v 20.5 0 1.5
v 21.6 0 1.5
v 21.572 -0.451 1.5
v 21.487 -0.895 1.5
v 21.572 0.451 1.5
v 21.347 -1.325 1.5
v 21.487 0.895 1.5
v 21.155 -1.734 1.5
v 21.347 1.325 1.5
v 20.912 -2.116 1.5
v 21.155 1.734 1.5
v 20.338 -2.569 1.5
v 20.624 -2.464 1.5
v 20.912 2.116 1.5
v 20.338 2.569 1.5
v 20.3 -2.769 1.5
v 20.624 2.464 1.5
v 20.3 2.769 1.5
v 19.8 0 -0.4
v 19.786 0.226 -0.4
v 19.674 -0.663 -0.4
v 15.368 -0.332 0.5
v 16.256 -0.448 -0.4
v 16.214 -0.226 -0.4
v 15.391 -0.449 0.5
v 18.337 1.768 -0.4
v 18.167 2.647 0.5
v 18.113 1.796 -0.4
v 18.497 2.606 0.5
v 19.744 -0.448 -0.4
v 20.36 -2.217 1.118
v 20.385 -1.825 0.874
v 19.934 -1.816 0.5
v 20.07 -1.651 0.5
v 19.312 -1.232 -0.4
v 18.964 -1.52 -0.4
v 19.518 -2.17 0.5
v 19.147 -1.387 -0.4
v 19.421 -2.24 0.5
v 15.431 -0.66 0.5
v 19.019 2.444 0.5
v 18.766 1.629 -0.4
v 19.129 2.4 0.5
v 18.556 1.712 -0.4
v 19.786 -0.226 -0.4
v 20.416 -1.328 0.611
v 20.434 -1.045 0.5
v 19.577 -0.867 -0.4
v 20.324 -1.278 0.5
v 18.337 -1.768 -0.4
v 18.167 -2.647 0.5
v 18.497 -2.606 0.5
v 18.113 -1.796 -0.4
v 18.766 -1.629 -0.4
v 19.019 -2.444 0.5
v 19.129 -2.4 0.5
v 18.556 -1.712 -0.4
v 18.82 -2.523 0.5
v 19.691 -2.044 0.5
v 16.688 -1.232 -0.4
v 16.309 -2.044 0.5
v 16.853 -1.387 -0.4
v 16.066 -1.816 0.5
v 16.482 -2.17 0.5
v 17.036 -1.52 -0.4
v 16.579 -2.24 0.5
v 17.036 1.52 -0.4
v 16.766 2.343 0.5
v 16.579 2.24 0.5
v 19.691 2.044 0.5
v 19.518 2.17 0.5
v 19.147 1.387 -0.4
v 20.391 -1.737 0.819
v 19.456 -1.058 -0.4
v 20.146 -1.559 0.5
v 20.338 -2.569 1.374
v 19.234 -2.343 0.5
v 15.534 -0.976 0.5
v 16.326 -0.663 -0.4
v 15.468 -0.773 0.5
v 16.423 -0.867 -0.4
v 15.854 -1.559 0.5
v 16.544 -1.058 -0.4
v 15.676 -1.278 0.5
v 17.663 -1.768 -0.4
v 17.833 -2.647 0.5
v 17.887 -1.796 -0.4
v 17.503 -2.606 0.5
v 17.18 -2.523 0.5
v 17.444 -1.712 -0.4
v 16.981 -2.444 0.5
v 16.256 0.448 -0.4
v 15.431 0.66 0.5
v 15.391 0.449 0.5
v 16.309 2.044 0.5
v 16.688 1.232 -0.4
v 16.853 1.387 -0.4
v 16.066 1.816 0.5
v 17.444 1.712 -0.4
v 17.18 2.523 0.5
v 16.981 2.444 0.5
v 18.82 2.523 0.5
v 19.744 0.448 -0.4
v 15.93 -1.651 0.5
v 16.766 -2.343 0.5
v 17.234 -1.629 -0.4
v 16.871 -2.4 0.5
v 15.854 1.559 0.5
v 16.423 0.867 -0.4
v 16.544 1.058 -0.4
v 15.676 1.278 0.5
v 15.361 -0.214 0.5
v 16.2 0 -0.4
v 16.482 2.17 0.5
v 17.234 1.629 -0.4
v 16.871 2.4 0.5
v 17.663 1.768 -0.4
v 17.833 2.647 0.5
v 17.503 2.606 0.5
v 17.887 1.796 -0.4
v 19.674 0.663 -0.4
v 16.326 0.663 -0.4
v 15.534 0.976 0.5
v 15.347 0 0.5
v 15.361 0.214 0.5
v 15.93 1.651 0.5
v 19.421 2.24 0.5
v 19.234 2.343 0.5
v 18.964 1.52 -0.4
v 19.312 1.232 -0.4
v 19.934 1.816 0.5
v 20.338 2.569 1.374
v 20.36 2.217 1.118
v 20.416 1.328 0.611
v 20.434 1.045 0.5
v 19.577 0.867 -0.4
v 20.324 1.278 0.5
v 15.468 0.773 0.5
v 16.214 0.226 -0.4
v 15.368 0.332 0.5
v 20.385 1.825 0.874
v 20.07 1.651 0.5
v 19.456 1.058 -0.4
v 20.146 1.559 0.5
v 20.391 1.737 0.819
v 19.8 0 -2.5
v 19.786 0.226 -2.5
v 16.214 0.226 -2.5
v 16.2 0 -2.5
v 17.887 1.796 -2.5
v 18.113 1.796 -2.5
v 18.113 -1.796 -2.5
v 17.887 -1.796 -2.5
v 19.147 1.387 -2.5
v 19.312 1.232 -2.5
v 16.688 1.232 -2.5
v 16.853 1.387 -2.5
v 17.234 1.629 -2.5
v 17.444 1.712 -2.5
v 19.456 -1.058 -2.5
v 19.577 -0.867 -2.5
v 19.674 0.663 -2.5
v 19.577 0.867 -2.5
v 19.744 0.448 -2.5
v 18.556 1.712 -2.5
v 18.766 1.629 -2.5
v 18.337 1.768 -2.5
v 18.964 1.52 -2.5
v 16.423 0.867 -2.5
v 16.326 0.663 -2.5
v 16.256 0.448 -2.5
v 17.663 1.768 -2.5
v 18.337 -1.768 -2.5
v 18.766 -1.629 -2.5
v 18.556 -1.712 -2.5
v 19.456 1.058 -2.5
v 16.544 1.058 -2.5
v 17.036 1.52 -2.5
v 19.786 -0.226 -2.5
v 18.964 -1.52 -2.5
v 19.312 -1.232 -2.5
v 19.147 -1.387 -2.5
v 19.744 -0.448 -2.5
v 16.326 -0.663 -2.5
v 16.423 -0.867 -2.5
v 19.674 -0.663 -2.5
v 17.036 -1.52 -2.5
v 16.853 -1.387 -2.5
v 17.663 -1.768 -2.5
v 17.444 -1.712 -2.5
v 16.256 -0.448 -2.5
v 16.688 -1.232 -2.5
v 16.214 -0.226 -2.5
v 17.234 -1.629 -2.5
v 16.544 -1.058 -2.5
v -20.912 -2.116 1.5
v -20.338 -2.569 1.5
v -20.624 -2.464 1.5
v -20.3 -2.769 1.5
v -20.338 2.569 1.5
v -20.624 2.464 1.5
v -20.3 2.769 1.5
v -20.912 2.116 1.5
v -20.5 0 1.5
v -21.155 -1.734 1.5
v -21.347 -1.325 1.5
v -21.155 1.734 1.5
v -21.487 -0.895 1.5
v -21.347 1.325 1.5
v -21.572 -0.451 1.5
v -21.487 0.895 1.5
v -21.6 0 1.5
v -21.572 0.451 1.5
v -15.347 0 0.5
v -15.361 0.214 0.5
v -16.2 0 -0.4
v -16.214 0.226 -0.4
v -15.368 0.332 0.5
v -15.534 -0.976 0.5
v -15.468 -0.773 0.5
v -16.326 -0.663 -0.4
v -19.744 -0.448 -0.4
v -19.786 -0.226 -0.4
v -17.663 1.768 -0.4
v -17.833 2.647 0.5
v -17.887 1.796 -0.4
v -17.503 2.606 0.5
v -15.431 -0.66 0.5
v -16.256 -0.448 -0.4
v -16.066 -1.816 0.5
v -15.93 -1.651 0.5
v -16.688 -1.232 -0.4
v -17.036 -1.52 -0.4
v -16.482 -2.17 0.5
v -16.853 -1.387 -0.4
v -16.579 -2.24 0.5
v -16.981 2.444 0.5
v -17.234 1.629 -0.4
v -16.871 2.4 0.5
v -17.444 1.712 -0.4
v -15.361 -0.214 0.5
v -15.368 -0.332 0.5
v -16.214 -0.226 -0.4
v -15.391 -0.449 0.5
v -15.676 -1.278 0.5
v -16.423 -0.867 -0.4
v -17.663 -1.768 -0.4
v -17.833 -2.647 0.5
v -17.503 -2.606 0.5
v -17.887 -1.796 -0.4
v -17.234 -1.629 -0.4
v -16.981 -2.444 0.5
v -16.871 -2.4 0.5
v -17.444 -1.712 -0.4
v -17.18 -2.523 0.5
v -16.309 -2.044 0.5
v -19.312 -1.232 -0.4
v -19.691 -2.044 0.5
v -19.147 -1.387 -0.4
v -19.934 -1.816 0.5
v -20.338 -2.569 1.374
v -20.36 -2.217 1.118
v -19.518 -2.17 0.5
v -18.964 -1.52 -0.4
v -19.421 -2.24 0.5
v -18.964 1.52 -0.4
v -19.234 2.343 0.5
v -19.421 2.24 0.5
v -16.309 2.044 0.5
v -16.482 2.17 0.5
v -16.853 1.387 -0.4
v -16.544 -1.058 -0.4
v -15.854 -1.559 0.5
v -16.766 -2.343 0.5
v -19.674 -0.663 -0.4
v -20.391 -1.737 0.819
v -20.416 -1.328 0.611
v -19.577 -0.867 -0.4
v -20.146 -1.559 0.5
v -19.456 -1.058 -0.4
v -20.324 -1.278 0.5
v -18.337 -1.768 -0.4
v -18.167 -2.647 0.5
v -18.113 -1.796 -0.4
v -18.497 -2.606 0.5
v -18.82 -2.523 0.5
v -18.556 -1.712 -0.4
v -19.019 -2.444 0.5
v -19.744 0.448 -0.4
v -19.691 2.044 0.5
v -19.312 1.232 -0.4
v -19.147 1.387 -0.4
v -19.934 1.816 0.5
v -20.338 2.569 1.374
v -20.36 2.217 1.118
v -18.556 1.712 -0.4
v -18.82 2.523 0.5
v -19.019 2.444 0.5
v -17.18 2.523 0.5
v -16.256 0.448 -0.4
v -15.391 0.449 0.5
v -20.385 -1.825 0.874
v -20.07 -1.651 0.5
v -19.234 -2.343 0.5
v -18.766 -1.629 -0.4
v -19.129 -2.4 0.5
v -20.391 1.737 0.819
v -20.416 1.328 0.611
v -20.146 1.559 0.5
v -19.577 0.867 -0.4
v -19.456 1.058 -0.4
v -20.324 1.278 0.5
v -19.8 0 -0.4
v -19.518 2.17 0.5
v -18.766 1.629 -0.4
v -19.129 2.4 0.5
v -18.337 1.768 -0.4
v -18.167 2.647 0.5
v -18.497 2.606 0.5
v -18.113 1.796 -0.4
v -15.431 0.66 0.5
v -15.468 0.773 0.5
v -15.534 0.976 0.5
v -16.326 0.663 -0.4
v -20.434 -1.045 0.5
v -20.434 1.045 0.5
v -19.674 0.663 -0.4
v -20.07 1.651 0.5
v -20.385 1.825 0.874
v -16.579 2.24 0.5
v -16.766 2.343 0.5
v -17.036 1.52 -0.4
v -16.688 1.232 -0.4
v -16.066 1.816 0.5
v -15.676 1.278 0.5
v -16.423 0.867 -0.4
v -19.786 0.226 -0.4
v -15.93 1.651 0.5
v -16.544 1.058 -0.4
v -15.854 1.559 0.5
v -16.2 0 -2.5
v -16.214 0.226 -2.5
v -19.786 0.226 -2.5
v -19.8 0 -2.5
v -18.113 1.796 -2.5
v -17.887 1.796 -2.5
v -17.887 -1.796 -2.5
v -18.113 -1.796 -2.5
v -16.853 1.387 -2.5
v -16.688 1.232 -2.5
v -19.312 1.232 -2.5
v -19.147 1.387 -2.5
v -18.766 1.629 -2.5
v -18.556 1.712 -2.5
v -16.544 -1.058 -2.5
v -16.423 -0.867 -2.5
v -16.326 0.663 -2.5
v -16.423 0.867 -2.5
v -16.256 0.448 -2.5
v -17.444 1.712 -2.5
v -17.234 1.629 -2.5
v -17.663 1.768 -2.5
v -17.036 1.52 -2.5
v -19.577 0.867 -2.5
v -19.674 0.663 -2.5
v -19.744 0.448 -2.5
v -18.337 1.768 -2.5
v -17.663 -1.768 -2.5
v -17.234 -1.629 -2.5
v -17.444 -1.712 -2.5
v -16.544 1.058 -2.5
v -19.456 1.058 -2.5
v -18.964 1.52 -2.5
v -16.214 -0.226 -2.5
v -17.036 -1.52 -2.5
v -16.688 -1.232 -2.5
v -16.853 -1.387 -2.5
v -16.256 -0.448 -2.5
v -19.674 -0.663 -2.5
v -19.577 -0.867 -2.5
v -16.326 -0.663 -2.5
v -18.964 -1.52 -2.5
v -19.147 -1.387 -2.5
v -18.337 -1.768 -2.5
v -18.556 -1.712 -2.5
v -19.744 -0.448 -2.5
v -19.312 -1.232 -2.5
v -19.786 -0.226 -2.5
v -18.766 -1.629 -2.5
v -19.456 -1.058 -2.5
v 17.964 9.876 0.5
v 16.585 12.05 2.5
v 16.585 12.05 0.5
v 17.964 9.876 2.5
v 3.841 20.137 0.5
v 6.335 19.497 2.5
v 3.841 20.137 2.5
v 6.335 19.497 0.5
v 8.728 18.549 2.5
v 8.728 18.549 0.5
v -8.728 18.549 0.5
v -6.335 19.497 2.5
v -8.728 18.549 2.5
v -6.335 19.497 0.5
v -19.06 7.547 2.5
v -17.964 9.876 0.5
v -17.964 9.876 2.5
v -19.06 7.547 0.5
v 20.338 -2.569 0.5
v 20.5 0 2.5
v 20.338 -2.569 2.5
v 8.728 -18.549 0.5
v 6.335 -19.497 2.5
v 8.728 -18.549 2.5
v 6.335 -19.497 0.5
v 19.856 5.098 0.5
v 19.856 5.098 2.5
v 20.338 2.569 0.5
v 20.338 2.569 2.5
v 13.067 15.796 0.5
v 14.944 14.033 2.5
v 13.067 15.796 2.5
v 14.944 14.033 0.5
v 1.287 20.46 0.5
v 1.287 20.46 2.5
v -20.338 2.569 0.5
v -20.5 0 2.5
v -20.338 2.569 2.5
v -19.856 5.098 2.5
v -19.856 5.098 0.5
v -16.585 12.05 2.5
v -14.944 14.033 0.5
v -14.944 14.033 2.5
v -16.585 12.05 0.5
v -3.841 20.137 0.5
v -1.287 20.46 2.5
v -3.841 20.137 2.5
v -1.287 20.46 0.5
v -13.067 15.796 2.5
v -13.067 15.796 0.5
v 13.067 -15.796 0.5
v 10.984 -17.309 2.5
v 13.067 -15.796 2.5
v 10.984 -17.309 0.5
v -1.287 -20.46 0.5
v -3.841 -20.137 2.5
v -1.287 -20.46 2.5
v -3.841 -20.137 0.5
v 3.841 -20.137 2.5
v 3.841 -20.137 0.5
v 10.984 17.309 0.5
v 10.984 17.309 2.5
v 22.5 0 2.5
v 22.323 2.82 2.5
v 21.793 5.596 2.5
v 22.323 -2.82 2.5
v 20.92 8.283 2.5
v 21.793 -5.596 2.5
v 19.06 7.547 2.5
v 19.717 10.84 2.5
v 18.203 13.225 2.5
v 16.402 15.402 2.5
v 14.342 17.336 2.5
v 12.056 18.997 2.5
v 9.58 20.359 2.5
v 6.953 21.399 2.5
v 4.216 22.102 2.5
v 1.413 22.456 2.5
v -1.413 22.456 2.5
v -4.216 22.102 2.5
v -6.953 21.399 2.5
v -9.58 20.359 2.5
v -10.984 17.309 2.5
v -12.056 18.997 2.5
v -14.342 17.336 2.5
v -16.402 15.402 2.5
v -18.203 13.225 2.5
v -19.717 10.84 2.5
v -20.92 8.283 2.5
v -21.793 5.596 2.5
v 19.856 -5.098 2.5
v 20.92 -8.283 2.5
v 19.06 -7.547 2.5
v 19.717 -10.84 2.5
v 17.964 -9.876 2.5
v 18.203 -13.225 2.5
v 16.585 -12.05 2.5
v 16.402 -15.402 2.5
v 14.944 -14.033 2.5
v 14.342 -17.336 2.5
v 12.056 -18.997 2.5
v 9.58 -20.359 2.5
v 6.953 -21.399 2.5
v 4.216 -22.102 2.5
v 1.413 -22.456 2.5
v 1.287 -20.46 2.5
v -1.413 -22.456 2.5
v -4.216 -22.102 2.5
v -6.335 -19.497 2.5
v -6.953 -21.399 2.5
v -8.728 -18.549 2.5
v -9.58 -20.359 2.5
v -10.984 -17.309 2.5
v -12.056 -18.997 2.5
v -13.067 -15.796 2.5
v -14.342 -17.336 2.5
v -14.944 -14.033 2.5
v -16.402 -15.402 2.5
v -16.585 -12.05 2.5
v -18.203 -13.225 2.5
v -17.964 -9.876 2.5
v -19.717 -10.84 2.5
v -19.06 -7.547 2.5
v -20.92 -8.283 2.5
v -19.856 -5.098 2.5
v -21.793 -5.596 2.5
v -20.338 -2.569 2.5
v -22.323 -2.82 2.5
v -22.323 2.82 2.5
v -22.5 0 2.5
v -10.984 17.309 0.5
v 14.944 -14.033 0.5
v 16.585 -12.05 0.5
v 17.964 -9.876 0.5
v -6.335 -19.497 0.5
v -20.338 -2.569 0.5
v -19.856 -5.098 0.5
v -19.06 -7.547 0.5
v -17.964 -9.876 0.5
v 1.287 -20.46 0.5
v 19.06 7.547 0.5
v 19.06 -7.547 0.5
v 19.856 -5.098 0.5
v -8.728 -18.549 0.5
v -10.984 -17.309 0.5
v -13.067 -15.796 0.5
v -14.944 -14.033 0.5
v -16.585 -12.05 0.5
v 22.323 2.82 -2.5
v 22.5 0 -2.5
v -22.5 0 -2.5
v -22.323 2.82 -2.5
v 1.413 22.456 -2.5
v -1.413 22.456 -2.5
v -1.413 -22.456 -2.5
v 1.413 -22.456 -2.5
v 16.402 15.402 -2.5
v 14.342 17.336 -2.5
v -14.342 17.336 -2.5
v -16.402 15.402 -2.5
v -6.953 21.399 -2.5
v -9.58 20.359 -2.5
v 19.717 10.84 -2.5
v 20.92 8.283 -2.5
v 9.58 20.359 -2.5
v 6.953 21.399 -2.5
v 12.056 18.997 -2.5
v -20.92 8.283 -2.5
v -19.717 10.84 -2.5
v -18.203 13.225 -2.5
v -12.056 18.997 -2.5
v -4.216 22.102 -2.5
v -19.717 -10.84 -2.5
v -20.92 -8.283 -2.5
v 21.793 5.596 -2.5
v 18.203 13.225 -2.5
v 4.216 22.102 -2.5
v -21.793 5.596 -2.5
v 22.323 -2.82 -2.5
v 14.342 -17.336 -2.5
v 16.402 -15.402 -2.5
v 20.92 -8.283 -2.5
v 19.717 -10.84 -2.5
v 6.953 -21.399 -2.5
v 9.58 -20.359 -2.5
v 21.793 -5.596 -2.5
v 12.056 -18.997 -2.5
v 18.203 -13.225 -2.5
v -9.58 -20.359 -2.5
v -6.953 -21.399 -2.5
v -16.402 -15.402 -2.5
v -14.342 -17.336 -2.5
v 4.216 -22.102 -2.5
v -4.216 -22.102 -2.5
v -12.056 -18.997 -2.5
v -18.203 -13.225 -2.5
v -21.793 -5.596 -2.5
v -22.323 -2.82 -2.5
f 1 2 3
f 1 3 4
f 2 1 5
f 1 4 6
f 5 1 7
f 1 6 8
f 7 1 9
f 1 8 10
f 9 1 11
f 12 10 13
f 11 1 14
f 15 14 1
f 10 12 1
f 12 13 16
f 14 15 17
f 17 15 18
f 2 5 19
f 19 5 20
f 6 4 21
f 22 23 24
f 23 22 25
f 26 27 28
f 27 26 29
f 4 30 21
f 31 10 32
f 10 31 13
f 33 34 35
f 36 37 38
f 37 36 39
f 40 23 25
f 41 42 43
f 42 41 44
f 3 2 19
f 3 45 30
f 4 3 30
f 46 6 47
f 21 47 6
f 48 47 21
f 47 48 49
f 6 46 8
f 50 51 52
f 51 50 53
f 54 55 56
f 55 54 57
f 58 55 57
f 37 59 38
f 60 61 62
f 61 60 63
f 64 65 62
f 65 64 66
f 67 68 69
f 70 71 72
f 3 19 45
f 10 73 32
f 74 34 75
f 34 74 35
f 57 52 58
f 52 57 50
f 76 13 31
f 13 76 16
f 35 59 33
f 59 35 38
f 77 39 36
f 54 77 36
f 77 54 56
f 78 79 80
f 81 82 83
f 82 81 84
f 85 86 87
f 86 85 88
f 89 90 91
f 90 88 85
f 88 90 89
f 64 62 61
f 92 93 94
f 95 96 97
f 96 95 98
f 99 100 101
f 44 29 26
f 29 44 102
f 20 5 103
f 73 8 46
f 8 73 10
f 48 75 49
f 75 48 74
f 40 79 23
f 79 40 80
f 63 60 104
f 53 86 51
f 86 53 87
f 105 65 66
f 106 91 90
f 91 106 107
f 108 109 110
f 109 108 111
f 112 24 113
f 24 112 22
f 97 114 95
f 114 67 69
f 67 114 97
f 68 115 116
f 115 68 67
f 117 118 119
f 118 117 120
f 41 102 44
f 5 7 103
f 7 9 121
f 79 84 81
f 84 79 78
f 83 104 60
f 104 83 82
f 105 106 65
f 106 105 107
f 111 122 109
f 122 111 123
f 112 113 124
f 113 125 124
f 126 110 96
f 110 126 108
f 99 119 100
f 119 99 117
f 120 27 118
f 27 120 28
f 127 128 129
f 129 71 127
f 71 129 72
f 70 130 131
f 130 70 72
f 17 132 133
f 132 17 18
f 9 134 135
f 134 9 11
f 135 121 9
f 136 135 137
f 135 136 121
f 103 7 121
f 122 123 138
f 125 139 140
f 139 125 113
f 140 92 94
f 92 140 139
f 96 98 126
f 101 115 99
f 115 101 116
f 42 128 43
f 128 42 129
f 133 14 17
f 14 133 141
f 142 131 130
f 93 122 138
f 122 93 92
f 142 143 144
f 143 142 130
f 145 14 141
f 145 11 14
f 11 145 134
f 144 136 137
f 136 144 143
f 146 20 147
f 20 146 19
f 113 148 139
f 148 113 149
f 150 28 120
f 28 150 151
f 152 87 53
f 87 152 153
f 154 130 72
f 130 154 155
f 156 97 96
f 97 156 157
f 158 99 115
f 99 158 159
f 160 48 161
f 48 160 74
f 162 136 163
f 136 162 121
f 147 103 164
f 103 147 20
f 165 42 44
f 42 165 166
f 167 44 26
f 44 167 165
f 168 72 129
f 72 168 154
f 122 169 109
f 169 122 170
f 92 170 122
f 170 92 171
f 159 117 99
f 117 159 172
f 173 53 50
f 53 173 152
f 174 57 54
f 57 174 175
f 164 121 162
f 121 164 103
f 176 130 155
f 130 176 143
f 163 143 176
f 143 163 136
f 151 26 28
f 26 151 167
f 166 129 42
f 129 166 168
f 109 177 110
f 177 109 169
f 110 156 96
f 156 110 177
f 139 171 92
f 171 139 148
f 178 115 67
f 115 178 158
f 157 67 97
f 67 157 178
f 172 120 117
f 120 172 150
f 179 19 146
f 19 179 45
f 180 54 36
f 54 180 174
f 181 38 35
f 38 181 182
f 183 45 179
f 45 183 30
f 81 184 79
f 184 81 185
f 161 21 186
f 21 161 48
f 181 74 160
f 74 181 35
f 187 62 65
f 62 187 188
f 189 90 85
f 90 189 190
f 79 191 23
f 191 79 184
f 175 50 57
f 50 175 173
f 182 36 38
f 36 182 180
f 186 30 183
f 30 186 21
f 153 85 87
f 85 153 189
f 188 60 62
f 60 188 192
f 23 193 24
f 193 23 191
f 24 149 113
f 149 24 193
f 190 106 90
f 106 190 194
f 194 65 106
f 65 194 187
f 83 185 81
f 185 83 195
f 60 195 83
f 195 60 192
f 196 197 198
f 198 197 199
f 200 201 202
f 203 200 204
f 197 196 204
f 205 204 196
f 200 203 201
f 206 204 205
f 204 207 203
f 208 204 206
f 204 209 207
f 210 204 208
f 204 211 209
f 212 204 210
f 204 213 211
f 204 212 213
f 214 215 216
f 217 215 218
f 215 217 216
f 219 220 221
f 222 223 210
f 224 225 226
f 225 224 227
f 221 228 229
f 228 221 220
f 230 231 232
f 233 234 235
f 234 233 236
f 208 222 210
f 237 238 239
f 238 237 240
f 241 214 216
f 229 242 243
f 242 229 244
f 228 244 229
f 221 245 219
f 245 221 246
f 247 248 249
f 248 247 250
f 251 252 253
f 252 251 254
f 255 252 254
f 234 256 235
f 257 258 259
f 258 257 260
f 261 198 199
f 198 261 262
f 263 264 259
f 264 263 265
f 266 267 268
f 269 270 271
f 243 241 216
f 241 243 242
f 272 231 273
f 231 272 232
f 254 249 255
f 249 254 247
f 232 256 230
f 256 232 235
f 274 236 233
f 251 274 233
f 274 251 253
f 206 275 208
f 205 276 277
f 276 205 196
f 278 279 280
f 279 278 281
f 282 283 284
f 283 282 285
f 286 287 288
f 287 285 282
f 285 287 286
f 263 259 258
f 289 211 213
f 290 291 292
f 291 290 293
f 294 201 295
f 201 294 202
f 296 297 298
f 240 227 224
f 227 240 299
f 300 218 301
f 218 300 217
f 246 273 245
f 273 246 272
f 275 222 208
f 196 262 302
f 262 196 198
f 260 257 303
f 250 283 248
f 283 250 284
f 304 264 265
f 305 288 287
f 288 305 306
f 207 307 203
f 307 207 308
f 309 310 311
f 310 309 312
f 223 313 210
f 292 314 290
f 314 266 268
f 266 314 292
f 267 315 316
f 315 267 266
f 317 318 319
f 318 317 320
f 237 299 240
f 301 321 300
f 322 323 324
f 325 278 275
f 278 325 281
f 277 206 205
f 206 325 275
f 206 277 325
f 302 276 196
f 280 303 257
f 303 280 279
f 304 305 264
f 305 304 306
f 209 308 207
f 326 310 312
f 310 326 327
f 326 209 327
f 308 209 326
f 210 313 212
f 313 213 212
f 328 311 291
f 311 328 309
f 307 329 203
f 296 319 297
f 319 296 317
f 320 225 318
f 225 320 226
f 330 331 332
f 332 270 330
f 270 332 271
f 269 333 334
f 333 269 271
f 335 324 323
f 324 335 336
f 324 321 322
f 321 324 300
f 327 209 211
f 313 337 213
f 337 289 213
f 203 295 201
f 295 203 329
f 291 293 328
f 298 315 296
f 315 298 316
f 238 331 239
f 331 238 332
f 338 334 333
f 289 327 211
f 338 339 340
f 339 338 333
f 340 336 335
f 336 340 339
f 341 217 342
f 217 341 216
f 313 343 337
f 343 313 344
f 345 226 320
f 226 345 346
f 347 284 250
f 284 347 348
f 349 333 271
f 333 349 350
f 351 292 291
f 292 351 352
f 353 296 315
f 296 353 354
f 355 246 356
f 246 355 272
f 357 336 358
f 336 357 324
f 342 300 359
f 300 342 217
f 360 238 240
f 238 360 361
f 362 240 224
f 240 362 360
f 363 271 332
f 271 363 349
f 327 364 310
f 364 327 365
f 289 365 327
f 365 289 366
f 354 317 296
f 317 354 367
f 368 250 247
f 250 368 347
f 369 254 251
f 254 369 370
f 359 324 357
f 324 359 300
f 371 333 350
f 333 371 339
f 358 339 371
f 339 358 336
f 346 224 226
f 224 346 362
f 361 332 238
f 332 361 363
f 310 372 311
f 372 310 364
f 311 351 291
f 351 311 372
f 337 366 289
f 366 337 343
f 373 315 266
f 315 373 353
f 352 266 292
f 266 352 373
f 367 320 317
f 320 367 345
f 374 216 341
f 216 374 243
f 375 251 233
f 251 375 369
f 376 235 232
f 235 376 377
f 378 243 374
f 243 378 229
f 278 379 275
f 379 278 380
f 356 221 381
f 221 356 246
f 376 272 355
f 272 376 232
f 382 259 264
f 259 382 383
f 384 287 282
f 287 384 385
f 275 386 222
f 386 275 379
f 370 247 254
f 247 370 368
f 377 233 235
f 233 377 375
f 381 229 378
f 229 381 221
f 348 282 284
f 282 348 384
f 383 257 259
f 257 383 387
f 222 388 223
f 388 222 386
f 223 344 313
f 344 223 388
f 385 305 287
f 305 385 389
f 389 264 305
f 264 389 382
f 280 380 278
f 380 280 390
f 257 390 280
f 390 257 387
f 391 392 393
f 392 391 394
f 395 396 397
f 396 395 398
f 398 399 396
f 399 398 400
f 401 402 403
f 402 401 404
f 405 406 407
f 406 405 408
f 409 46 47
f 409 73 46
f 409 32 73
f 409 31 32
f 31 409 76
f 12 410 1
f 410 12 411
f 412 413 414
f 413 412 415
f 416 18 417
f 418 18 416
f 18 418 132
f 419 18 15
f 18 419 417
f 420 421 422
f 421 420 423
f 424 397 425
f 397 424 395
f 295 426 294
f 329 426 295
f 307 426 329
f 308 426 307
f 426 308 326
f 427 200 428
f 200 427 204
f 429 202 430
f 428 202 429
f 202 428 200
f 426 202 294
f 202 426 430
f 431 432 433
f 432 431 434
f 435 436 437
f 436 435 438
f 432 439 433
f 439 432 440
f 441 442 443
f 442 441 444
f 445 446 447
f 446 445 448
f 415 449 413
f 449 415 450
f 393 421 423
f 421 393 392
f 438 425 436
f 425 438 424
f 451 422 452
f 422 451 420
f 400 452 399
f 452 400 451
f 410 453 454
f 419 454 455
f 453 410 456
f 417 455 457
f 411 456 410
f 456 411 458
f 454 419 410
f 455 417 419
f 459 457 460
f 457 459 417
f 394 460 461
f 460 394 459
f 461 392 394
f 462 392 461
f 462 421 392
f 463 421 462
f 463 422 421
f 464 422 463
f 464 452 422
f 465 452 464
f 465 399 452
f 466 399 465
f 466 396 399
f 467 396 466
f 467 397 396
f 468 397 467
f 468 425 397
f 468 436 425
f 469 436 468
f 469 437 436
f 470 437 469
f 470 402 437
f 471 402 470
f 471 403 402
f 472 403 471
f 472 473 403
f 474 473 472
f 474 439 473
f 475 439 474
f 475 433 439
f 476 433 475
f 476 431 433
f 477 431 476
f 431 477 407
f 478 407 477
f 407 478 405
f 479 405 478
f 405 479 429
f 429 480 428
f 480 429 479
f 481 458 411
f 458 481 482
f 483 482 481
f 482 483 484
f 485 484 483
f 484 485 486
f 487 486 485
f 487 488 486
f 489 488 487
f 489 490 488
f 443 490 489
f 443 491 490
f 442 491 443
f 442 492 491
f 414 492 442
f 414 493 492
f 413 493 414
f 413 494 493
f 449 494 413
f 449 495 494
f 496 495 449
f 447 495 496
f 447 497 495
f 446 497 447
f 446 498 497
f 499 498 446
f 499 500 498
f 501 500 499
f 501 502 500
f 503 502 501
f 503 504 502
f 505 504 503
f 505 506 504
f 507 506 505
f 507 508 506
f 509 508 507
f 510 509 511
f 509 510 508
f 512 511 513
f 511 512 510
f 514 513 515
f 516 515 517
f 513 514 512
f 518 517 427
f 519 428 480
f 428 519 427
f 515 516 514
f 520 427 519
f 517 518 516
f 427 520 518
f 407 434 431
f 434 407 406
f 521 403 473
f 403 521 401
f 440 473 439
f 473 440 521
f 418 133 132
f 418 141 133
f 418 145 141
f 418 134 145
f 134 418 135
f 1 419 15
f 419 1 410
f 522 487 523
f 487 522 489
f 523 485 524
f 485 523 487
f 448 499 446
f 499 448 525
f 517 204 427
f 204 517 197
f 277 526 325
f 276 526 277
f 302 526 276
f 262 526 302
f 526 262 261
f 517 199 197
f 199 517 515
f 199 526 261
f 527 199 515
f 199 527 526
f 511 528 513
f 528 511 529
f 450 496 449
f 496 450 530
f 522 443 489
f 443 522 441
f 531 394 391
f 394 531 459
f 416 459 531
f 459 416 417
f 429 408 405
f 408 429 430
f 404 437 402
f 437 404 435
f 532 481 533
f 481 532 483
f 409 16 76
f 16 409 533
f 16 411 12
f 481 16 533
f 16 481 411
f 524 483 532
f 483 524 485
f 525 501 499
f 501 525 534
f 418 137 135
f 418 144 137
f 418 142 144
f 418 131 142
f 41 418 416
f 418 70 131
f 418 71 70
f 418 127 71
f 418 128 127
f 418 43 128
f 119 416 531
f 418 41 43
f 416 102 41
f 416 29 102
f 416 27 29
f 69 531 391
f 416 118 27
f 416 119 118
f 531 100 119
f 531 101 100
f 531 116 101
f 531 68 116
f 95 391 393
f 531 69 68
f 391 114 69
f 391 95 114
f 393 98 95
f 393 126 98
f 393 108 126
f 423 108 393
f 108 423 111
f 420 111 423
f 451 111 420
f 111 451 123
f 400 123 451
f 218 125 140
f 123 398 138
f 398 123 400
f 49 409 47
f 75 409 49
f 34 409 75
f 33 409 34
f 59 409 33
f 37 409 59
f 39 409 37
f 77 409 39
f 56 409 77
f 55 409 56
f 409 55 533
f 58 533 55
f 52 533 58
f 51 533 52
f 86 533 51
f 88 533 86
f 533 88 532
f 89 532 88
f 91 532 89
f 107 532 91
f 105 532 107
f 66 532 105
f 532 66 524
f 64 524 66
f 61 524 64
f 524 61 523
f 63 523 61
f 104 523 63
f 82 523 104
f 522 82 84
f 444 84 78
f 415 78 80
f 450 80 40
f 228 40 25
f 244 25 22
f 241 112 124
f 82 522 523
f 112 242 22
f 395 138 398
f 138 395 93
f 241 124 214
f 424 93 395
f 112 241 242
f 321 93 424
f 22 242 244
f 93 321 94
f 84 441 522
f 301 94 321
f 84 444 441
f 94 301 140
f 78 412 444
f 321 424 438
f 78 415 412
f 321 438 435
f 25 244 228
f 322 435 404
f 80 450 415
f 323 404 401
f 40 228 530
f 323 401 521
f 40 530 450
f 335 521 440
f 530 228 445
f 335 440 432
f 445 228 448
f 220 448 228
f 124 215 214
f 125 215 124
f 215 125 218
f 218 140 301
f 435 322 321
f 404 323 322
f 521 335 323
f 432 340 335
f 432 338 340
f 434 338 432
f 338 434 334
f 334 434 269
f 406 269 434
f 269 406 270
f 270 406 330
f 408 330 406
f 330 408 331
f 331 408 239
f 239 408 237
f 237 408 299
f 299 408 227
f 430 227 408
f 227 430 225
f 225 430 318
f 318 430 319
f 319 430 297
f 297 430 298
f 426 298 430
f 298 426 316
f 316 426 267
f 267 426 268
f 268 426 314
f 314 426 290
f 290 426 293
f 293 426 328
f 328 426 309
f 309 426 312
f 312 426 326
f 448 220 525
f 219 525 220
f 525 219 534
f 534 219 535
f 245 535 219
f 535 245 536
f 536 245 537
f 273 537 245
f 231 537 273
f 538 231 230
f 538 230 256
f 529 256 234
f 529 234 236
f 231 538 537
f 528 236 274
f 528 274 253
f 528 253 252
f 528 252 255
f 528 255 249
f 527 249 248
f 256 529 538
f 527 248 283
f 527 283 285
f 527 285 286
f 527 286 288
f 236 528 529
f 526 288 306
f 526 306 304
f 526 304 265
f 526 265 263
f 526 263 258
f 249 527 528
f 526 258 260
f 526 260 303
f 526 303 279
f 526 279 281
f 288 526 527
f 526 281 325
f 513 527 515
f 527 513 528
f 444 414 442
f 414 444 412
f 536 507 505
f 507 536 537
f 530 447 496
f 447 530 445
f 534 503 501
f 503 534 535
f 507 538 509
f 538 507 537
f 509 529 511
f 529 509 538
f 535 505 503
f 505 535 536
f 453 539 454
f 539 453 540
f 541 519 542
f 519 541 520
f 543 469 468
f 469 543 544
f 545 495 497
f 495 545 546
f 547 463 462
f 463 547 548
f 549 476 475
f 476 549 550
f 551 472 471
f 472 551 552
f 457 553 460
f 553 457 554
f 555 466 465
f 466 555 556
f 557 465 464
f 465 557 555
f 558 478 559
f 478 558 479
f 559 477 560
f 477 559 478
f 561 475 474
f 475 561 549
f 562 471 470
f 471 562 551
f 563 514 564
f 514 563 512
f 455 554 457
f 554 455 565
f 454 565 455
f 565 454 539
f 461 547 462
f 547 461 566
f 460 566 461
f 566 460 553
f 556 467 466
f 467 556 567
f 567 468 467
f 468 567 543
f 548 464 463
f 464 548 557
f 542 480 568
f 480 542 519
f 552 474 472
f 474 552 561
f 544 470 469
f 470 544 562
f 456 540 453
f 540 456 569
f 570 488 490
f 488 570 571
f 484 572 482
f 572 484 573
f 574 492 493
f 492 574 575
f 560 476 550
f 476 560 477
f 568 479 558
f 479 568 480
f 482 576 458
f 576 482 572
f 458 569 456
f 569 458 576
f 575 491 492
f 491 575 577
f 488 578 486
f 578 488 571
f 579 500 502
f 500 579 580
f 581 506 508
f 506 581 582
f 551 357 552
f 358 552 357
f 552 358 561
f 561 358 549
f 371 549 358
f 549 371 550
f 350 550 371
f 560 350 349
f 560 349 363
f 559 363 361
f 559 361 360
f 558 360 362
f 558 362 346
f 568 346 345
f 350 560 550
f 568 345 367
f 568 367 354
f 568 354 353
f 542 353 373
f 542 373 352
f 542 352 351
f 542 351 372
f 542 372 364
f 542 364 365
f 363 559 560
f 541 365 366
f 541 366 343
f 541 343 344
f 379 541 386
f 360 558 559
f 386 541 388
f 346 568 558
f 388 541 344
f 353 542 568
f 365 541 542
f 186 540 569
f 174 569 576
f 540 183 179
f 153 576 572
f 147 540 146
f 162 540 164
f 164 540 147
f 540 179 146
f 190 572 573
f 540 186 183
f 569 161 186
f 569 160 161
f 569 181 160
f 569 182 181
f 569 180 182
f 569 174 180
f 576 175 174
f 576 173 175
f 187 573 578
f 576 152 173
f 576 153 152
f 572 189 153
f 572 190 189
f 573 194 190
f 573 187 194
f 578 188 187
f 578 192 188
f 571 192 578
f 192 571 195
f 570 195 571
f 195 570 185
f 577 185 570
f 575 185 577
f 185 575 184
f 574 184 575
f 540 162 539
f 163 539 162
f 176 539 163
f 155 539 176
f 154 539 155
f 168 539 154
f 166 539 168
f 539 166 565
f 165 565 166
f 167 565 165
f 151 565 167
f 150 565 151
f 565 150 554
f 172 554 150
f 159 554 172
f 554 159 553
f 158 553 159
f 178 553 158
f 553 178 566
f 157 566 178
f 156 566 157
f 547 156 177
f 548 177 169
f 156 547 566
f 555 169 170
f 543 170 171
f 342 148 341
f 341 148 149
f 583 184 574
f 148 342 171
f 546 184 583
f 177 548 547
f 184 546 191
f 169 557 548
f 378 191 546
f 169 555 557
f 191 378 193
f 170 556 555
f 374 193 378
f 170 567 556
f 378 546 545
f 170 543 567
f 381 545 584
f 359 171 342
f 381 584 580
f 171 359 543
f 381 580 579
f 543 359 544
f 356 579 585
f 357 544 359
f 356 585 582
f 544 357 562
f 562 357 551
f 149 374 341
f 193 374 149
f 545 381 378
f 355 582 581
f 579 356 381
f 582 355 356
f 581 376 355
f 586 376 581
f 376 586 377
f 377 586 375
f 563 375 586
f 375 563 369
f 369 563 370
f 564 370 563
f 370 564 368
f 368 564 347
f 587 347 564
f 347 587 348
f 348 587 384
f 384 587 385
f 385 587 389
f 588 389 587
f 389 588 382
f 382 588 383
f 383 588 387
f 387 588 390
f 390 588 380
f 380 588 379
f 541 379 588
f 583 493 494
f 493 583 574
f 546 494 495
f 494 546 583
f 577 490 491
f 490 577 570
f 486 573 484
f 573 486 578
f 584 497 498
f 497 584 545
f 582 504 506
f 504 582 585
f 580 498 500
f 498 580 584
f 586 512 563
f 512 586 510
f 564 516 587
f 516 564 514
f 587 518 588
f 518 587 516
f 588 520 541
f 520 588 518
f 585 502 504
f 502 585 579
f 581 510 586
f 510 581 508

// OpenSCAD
$fn = 50;


difference() {
	union() {
		translate(v = [0, 0, -2.5000000000]) {
			cylinder(h = 5, r = 22.5000000000);
		}
	}
	union() {
		translate(v = [18.0000000000, 0, 1.5000000000]) {
			rotate(a = [0, 0, 0]) {
				difference() {
					union() {
						translate(v = [0, 0, -10.0000000000]) {
							rotate(a = [0, 0, 0]) {
								difference() {
									union() {
										#translate(v = [-1.7500000000, -3.2500000000, -0.3000000000]) {
											cube(size = [3.5000000000, 6.5000000000, 0.3000000000]);
										}
										#translate(v = [-1.7500000000, -1.7500000000, -0.6000000000]) {
											cube(size = [3.5000000000, 3.5000000000, 0.3000000000]);
										}
										#translate(v = [-1.7500000000, -3.2500000000, 2.5000000000]) {
											cube(size = [3.5000000000, 6.5000000000, 0.3000000000]);
										}
										#translate(v = [-1.7500000000, -1.7500000000, 2.8000000000]) {
											cube(size = [3.5000000000, 3.5000000000, 0.3000000000]);
										}
										#linear_extrude(height = 2.5000000000) {
											polygon(points = [[3.4620000000, 0.0000000000], [1.7310000000, 2.9981799479], [-1.7310000000, 2.9981799479], [-3.4620000000, 0.0000000000], [-1.7310000000, -2.9981799479], [1.7310000000, -2.9981799479]]);
										}
										#translate(v = [-1.7500000000, -3.2500000000, -0.3000000000]) {
											cube(size = [3.5000000000, 6.5000000000, 0.3000000000]);
										}
										#translate(v = [-1.7500000000, -1.7500000000, -0.6000000000]) {
											cube(size = [3.5000000000, 3.5000000000, 0.3000000000]);
										}
										#translate(v = [-1.7500000000, -3.2500000000, 2.5000000000]) {
											cube(size = [3.5000000000, 6.5000000000, 0.3000000000]);
										}
										#translate(v = [-1.7500000000, -1.7500000000, 2.8000000000]) {
											cube(size = [3.5000000000, 3.5000000000, 0.3000000000]);
										}
										#translate(v = [-1.7500000000, -3.2500000000, -0.3000000000]) {
											cube(size = [3.5000000000, 6.5000000000, 0.3000000000]);
										}
										#translate(v = [-1.7500000000, -1.7500000000, -0.6000000000]) {
											cube(size = [3.5000000000, 3.5000000000, 0.3000000000]);
										}
										#translate(v = [-1.7500000000, -3.2500000000, 2.5000000000]) {
											cube(size = [3.5000000000, 6.5000000000, 0.3000000000]);
										}
										#translate(v = [-1.7500000000, -1.7500000000, 2.8000000000]) {
											cube(size = [3.5000000000, 3.5000000000, 0.3000000000]);
										}
									}
									union();
								}
							}
						}
						translate(v = [0, 0, -10.0000000000]) {
							rotate(a = [0, 0, 0]) {
								difference() {
									union() {
										#translate(v = [-1.7500000000, -3.2500000000, -0.3000000000]) {
											cube(size = [3.5000000000, 6.5000000000, 0.3000000000]);
										}
										#translate(v = [-1.7500000000, -1.7500000000, -0.6000000000]) {
											cube(size = [3.5000000000, 3.5000000000, 0.3000000000]);
										}
										#translate(v = [-1.7500000000, -3.2500000000, 2.5000000000]) {
											cube(size = [3.5000000000, 6.5000000000, 0.3000000000]);
										}
										#translate(v = [-1.7500000000, -1.7500000000, 2.8000000000]) {
											cube(size = [3.5000000000, 3.5000000000, 0.3000000000]);
										}
										#linear_extrude(height = 2.5000000000) {
											polygon(points = [[3.4620000000, 0.0000000000], [1.7310000000, 2.9981799479], [-1.7310000000, 2.9981799479], [-3.4620000000, 0.0000000000], [-1.7310000000, -2.9981799479], [1.7310000000, -2.9981799479]]);
										}
										#translate(v = [-1.7500000000, -3.2500000000, -0.3000000000]) {
											cube(size = [3.5000000000, 6.5000000000, 0.3000000000]);
										}
										#translate(v = [-1.7500000000, -1.7500000000, -0.6000000000]) {
											cube(size = [3.5000000000, 3.5000000000, 0.3000000000]);
										}
										#translate(v = [-1.7500000000, -3.2500000000, 2.5000000000]) {
											cube(size = [3.5000000000, 6.5000000000, 0.3000000000]);
										}
										#translate(v = [-1.7500000000, -1.7500000000, 2.8000000000]) {
											cube(size = [3.5000000000, 3.5000000000, 0.3000000000]);
										}
										#translate(v = [-1.7500000000, -3.2500000000, -0.3000000000]) {
											cube(size = [3.5000000000, 6.5000000000, 0.3000000000]);
										}
										#translate(v = [-1.7500000000, -1.7500000000, -0.6000000000]) {
											cube(size = [3.5000000000, 3.5000000000, 0.3000000000]);
										}
										#translate(v = [-1.7500000000, -3.2500000000, 2.5000000000]) {
											cube(size = [3.5000000000, 6.5000000000, 0.3000000000]);
										}
										#translate(v = [-1.7500000000, -1.7500000000, 2.8000000000]) {
											cube(size = [3.5000000000, 3.5000000000, 0.3000000000]);
										}
									}
									union();
								}
							}
						}
						translate(v = [0, 0, -10.0000000000]) {
							rotate(a = [0, 0, 0]) {
								difference() {
									union() {
										#translate(v = [-1.7500000000, -3.2500000000, -0.3000000000]) {
											cube(size = [3.5000000000, 6.5000000000, 0.3000000000]);
										}
										#translate(v = [-1.7500000000, -1.7500000000, -0.6000000000]) {
											cube(size = [3.5000000000, 3.5000000000, 0.3000000000]);
										}
										#translate(v = [-1.7500000000, -3.2500000000, 2.5000000000]) {
											cube(size = [3.5000000000, 6.5000000000, 0.3000000000]);
										}
										#translate(v = [-1.7500000000, -1.7500000000, 2.8000000000]) {
											cube(size = [3.5000000000, 3.5000000000, 0.3000000000]);
										}
										#linear_extrude(height = 2.5000000000) {
											polygon(points = [[3.4620000000, 0.0000000000], [1.7310000000, 2.9981799479], [-1.7310000000, 2.9981799479], [-3.4620000000, 0.0000000000], [-1.7310000000, -2.9981799479], [1.7310000000, -2.9981799479]]);
										}
										#translate(v = [-1.7500000000, -3.2500000000, -0.3000000000]) {
											cube(size = [3.5000000000, 6.5000000000, 0.3000000000]);
										}
										#translate(v = [-1.7500000000, -1.7500000000, -0.6000000000]) {
											cube(size = [3.5000000000, 3.5000000000, 0.3000000000]);
										}
										#translate(v = [-1.7500000000, -3.2500000000, 2.5000000000]) {
											cube(size = [3.5000000000, 6.5000000000, 0.3000000000]);
										}
										#translate(v = [-1.7500000000, -1.7500000000, 2.8000000000]) {
											cube(size = [3.5000000000, 3.5000000000, 0.3000000000]);
										}
										#translate(v = [-1.7500000000, -3.2500000000, -0.3000000000]) {
											cube(size = [3.5000000000, 6.5000000000, 0.3000000000]);
										}
										#translate(v = [-1.7500000000, -1.7500000000, -0.6000000000]) {
											cube(size = [3.5000000000, 3.5000000000, 0.3000000000]);
										}
										#translate(v = [-1.7500000000, -3.2500000000, 2.5000000000]) {
											cube(size = [3.5000000000, 6.5000000000, 0.3000000000]);
										}
										#translate(v = [-1.7500000000, -1.7500000000, 2.8000000000]) {
											cube(size = [3.5000000000, 3.5000000000, 0.3000000000]);
										}
									}
									union();
								}
							}
						}
						#translate(v = [0, 0, -10.0000000000]) {
							cylinder(h = 10, r = 1.5000000000);
						}
						#translate(v = [0, 0, -1.9000000000]) {
							cylinder(h = 1.9000000000, r1 = 1.8000000000, r2 = 3.6000000000);
						}
						#translate(v = [0, 0, -10.0000000000]) {
							cylinder(h = 10, r = 1.8000000000);
						}
						#translate(v = [0, 0, -10.0000000000]) {
							cylinder(h = 10, r = 1.5000000000);
						}
					}
					union();
				}
			}
		}
		translate(v = [-18.0000000000, 0, 1.5000000000]) {
			rotate(a = [0, 0, 0]) {
				difference() {
					union() {
						translate(v = [0, 0, -10.0000000000]) {
							rotate(a = [0, 0, 0]) {
								difference() {
									union() {
										#translate(v = [-1.7500000000, -3.2500000000, -0.3000000000]) {
											cube(size = [3.5000000000, 6.5000000000, 0.3000000000]);
										}
										#translate(v = [-1.7500000000, -1.7500000000, -0.6000000000]) {
											cube(size = [3.5000000000, 3.5000000000, 0.3000000000]);
										}
										#translate(v = [-1.7500000000, -3.2500000000, 2.5000000000]) {
											cube(size = [3.5000000000, 6.5000000000, 0.3000000000]);
										}
										#translate(v = [-1.7500000000, -1.7500000000, 2.8000000000]) {
											cube(size = [3.5000000000, 3.5000000000, 0.3000000000]);
										}
										#linear_extrude(height = 2.5000000000) {
											polygon(points = [[3.4620000000, 0.0000000000], [1.7310000000, 2.9981799479], [-1.7310000000, 2.9981799479], [-3.4620000000, 0.0000000000], [-1.7310000000, -2.9981799479], [1.7310000000, -2.9981799479]]);
										}
										#translate(v = [-1.7500000000, -3.2500000000, -0.3000000000]) {
											cube(size = [3.5000000000, 6.5000000000, 0.3000000000]);
										}
										#translate(v = [-1.7500000000, -1.7500000000, -0.6000000000]) {
											cube(size = [3.5000000000, 3.5000000000, 0.3000000000]);
										}
										#translate(v = [-1.7500000000, -3.2500000000, 2.5000000000]) {
											cube(size = [3.5000000000, 6.5000000000, 0.3000000000]);
										}
										#translate(v = [-1.7500000000, -1.7500000000, 2.8000000000]) {
											cube(size = [3.5000000000, 3.5000000000, 0.3000000000]);
										}
										#translate(v = [-1.7500000000, -3.2500000000, -0.3000000000]) {
											cube(size = [3.5000000000, 6.5000000000, 0.3000000000]);
										}
										#translate(v = [-1.7500000000, -1.7500000000, -0.6000000000]) {
											cube(size = [3.5000000000, 3.5000000000, 0.3000000000]);
										}
										#translate(v = [-1.7500000000, -3.2500000000, 2.5000000000]) {
											cube(size = [3.5000000000, 6.5000000000, 0.3000000000]);
										}
										#translate(v = [-1.7500000000, -1.7500000000, 2.8000000000]) {
											cube(size = [3.5000000000, 3.5000000000, 0.3000000000]);
										}
									}
									union();
								}
							}
						}
						translate(v = [0, 0, -10.0000000000]) {
							rotate(a = [0, 0, 0]) {
								difference() {
									union() {
										#translate(v = [-1.7500000000, -3.2500000000, -0.3000000000]) {
											cube(size = [3.5000000000, 6.5000000000, 0.3000000000]);
										}
										#translate(v = [-1.7500000000, -1.7500000000, -0.6000000000]) {
											cube(size = [3.5000000000, 3.5000000000, 0.3000000000]);
										}
										#translate(v = [-1.7500000000, -3.2500000000, 2.5000000000]) {
											cube(size = [3.5000000000, 6.5000000000, 0.3000000000]);
										}
										#translate(v = [-1.7500000000, -1.7500000000, 2.8000000000]) {
											cube(size = [3.5000000000, 3.5000000000, 0.3000000000]);
										}
										#linear_extrude(height = 2.5000000000) {
											polygon(points = [[3.4620000000, 0.0000000000], [1.7310000000, 2.9981799479], [-1.7310000000, 2.9981799479], [-3.4620000000, 0.0000000000], [-1.7310000000, -2.9981799479], [1.7310000000, -2.9981799479]]);
										}
										#translate(v = [-1.7500000000, -3.2500000000, -0.3000000000]) {
											cube(size = [3.5000000000, 6.5000000000, 0.3000000000]);
										}
										#translate(v = [-1.7500000000, -1.7500000000, -0.6000000000]) {
											cube(size = [3.5000000000, 3.5000000000, 0.3000000000]);
										}
										#translate(v = [-1.7500000000, -3.2500000000, 2.5000000000]) {
											cube(size = [3.5000000000, 6.5000000000, 0.3000000000]);
										}
										#translate(v = [-1.7500000000, -1.7500000000, 2.8000000000]) {
											cube(size = [3.5000000000, 3.5000000000, 0.3000000000]);
										}
										#translate(v = [-1.7500000000, -3.2500000000, -0.3000000000]) {
											cube(size = [3.5000000000, 6.5000000000, 0.3000000000]);
										}
										#translate(v = [-1.7500000000, -1.7500000000, -0.6000000000]) {
											cube(size = [3.5000000000, 3.5000000000, 0.3000000000]);
										}
										#translate(v = [-1.7500000000, -3.2500000000, 2.5000000000]) {
											cube(size = [3.5000000000, 6.5000000000, 0.3000000000]);
										}
										#translate(v = [-1.7500000000, -1.7500000000, 2.8000000000]) {
											cube(size = [3.5000000000, 3.5000000000, 0.3000000000]);
										}
									}
									union();
								}
							}
						}
						translate(v = [0, 0, -10.0000000000]) {
							rotate(a = [0, 0, 0]) {
								difference() {
									union() {
										#translate(v = [-1.7500000000, -3.2500000000, -0.3000000000]) {
											cube(size = [3.5000000000, 6.5000000000, 0.3000000000]);
										}
										#translate(v = [-1.7500000000, -1.7500000000, -0.6000000000]) {
											cube(size = [3.5000000000, 3.5000000000, 0.3000000000]);
										}
										#translate(v = [-1.7500000000, -3.2500000000, 2.5000000000]) {
											cube(size = [3.5000000000, 6.5000000000, 0.3000000000]);
										}
										#translate(v = [-1.7500000000, -1.7500000000, 2.8000000000]) {
											cube(size = [3.5000000000, 3.5000000000, 0.3000000000]);
										}
										#linear_extrude(height = 2.5000000000) {
											polygon(points = [[3.4620000000, 0.0000000000], [1.7310000000, 2.9981799479], [-1.7310000000, 2.9981799479], [-3.4620000000, 0.0000000000], [-1.7310000000, -2.9981799479], [1.7310000000, -2.9981799479]]);
										}
										#translate(v = [-1.7500000000, -3.2500000000, -0.3000000000]) {
											cube(size = [3.5000000000, 6.5000000000, 0.3000000000]);
										}
										#translate(v = [-1.7500000000, -1.7500000000, -0.6000000000]) {
											cube(size = [3.5000000000, 3.5000000000, 0.3000000000]);
										}
										#translate(v = [-1.7500000000, -3.2500000000, 2.5000000000]) {
											cube(size = [3.5000000000, 6.5000000000, 0.3000000000]);
										}
										#translate(v = [-1.7500000000, -1.7500000000, 2.8000000000]) {
											cube(size = [3.5000000000, 3.5000000000, 0.3000000000]);
										}
										#translate(v = [-1.7500000000, -3.2500000000, -0.3000000000]) {
											cube(size = [3.5000000000, 6.5000000000, 0.3000000000]);
										}
										#translate(v = [-1.7500000000, -1.7500000000, -0.6000000000]) {
											cube(size = [3.5000000000, 3.5000000000, 0.3000000000]);
										}
										#translate(v = [-1.7500000000, -3.2500000000, 2.5000000000]) {
											cube(size = [3.5000000000, 6.5000000000, 0.3000000000]);
										}
										#translate(v = [-1.7500000000, -1.7500000000, 2.8000000000]) {
											cube(size = [3.5000000000, 3.5000000000, 0.3000000000]);
										}
									}
									union();
								}
							}
						}
						#translate(v = [0, 0, -10.0000000000]) {
							cylinder(h = 10, r = 1.5000000000);
						}
						#translate(v = [0, 0, -1.9000000000]) {
							cylinder(h = 1.9000000000, r1 = 1.8000000000, r2 = 3.6000000000);
						}
						#translate(v = [0, 0, -10.0000000000]) {
							cylinder(h = 10, r = 1.8000000000);
						}
						#translate(v = [0, 0, -10.0000000000]) {
							cylinder(h = 10, r = 1.5000000000);
						}
					}
					union();
				}
			}
		}
		translate(v = [0, 0, 0.5000000000]) {
			cylinder(h = 2, r = 20.5000000000);
		}
	}
}
